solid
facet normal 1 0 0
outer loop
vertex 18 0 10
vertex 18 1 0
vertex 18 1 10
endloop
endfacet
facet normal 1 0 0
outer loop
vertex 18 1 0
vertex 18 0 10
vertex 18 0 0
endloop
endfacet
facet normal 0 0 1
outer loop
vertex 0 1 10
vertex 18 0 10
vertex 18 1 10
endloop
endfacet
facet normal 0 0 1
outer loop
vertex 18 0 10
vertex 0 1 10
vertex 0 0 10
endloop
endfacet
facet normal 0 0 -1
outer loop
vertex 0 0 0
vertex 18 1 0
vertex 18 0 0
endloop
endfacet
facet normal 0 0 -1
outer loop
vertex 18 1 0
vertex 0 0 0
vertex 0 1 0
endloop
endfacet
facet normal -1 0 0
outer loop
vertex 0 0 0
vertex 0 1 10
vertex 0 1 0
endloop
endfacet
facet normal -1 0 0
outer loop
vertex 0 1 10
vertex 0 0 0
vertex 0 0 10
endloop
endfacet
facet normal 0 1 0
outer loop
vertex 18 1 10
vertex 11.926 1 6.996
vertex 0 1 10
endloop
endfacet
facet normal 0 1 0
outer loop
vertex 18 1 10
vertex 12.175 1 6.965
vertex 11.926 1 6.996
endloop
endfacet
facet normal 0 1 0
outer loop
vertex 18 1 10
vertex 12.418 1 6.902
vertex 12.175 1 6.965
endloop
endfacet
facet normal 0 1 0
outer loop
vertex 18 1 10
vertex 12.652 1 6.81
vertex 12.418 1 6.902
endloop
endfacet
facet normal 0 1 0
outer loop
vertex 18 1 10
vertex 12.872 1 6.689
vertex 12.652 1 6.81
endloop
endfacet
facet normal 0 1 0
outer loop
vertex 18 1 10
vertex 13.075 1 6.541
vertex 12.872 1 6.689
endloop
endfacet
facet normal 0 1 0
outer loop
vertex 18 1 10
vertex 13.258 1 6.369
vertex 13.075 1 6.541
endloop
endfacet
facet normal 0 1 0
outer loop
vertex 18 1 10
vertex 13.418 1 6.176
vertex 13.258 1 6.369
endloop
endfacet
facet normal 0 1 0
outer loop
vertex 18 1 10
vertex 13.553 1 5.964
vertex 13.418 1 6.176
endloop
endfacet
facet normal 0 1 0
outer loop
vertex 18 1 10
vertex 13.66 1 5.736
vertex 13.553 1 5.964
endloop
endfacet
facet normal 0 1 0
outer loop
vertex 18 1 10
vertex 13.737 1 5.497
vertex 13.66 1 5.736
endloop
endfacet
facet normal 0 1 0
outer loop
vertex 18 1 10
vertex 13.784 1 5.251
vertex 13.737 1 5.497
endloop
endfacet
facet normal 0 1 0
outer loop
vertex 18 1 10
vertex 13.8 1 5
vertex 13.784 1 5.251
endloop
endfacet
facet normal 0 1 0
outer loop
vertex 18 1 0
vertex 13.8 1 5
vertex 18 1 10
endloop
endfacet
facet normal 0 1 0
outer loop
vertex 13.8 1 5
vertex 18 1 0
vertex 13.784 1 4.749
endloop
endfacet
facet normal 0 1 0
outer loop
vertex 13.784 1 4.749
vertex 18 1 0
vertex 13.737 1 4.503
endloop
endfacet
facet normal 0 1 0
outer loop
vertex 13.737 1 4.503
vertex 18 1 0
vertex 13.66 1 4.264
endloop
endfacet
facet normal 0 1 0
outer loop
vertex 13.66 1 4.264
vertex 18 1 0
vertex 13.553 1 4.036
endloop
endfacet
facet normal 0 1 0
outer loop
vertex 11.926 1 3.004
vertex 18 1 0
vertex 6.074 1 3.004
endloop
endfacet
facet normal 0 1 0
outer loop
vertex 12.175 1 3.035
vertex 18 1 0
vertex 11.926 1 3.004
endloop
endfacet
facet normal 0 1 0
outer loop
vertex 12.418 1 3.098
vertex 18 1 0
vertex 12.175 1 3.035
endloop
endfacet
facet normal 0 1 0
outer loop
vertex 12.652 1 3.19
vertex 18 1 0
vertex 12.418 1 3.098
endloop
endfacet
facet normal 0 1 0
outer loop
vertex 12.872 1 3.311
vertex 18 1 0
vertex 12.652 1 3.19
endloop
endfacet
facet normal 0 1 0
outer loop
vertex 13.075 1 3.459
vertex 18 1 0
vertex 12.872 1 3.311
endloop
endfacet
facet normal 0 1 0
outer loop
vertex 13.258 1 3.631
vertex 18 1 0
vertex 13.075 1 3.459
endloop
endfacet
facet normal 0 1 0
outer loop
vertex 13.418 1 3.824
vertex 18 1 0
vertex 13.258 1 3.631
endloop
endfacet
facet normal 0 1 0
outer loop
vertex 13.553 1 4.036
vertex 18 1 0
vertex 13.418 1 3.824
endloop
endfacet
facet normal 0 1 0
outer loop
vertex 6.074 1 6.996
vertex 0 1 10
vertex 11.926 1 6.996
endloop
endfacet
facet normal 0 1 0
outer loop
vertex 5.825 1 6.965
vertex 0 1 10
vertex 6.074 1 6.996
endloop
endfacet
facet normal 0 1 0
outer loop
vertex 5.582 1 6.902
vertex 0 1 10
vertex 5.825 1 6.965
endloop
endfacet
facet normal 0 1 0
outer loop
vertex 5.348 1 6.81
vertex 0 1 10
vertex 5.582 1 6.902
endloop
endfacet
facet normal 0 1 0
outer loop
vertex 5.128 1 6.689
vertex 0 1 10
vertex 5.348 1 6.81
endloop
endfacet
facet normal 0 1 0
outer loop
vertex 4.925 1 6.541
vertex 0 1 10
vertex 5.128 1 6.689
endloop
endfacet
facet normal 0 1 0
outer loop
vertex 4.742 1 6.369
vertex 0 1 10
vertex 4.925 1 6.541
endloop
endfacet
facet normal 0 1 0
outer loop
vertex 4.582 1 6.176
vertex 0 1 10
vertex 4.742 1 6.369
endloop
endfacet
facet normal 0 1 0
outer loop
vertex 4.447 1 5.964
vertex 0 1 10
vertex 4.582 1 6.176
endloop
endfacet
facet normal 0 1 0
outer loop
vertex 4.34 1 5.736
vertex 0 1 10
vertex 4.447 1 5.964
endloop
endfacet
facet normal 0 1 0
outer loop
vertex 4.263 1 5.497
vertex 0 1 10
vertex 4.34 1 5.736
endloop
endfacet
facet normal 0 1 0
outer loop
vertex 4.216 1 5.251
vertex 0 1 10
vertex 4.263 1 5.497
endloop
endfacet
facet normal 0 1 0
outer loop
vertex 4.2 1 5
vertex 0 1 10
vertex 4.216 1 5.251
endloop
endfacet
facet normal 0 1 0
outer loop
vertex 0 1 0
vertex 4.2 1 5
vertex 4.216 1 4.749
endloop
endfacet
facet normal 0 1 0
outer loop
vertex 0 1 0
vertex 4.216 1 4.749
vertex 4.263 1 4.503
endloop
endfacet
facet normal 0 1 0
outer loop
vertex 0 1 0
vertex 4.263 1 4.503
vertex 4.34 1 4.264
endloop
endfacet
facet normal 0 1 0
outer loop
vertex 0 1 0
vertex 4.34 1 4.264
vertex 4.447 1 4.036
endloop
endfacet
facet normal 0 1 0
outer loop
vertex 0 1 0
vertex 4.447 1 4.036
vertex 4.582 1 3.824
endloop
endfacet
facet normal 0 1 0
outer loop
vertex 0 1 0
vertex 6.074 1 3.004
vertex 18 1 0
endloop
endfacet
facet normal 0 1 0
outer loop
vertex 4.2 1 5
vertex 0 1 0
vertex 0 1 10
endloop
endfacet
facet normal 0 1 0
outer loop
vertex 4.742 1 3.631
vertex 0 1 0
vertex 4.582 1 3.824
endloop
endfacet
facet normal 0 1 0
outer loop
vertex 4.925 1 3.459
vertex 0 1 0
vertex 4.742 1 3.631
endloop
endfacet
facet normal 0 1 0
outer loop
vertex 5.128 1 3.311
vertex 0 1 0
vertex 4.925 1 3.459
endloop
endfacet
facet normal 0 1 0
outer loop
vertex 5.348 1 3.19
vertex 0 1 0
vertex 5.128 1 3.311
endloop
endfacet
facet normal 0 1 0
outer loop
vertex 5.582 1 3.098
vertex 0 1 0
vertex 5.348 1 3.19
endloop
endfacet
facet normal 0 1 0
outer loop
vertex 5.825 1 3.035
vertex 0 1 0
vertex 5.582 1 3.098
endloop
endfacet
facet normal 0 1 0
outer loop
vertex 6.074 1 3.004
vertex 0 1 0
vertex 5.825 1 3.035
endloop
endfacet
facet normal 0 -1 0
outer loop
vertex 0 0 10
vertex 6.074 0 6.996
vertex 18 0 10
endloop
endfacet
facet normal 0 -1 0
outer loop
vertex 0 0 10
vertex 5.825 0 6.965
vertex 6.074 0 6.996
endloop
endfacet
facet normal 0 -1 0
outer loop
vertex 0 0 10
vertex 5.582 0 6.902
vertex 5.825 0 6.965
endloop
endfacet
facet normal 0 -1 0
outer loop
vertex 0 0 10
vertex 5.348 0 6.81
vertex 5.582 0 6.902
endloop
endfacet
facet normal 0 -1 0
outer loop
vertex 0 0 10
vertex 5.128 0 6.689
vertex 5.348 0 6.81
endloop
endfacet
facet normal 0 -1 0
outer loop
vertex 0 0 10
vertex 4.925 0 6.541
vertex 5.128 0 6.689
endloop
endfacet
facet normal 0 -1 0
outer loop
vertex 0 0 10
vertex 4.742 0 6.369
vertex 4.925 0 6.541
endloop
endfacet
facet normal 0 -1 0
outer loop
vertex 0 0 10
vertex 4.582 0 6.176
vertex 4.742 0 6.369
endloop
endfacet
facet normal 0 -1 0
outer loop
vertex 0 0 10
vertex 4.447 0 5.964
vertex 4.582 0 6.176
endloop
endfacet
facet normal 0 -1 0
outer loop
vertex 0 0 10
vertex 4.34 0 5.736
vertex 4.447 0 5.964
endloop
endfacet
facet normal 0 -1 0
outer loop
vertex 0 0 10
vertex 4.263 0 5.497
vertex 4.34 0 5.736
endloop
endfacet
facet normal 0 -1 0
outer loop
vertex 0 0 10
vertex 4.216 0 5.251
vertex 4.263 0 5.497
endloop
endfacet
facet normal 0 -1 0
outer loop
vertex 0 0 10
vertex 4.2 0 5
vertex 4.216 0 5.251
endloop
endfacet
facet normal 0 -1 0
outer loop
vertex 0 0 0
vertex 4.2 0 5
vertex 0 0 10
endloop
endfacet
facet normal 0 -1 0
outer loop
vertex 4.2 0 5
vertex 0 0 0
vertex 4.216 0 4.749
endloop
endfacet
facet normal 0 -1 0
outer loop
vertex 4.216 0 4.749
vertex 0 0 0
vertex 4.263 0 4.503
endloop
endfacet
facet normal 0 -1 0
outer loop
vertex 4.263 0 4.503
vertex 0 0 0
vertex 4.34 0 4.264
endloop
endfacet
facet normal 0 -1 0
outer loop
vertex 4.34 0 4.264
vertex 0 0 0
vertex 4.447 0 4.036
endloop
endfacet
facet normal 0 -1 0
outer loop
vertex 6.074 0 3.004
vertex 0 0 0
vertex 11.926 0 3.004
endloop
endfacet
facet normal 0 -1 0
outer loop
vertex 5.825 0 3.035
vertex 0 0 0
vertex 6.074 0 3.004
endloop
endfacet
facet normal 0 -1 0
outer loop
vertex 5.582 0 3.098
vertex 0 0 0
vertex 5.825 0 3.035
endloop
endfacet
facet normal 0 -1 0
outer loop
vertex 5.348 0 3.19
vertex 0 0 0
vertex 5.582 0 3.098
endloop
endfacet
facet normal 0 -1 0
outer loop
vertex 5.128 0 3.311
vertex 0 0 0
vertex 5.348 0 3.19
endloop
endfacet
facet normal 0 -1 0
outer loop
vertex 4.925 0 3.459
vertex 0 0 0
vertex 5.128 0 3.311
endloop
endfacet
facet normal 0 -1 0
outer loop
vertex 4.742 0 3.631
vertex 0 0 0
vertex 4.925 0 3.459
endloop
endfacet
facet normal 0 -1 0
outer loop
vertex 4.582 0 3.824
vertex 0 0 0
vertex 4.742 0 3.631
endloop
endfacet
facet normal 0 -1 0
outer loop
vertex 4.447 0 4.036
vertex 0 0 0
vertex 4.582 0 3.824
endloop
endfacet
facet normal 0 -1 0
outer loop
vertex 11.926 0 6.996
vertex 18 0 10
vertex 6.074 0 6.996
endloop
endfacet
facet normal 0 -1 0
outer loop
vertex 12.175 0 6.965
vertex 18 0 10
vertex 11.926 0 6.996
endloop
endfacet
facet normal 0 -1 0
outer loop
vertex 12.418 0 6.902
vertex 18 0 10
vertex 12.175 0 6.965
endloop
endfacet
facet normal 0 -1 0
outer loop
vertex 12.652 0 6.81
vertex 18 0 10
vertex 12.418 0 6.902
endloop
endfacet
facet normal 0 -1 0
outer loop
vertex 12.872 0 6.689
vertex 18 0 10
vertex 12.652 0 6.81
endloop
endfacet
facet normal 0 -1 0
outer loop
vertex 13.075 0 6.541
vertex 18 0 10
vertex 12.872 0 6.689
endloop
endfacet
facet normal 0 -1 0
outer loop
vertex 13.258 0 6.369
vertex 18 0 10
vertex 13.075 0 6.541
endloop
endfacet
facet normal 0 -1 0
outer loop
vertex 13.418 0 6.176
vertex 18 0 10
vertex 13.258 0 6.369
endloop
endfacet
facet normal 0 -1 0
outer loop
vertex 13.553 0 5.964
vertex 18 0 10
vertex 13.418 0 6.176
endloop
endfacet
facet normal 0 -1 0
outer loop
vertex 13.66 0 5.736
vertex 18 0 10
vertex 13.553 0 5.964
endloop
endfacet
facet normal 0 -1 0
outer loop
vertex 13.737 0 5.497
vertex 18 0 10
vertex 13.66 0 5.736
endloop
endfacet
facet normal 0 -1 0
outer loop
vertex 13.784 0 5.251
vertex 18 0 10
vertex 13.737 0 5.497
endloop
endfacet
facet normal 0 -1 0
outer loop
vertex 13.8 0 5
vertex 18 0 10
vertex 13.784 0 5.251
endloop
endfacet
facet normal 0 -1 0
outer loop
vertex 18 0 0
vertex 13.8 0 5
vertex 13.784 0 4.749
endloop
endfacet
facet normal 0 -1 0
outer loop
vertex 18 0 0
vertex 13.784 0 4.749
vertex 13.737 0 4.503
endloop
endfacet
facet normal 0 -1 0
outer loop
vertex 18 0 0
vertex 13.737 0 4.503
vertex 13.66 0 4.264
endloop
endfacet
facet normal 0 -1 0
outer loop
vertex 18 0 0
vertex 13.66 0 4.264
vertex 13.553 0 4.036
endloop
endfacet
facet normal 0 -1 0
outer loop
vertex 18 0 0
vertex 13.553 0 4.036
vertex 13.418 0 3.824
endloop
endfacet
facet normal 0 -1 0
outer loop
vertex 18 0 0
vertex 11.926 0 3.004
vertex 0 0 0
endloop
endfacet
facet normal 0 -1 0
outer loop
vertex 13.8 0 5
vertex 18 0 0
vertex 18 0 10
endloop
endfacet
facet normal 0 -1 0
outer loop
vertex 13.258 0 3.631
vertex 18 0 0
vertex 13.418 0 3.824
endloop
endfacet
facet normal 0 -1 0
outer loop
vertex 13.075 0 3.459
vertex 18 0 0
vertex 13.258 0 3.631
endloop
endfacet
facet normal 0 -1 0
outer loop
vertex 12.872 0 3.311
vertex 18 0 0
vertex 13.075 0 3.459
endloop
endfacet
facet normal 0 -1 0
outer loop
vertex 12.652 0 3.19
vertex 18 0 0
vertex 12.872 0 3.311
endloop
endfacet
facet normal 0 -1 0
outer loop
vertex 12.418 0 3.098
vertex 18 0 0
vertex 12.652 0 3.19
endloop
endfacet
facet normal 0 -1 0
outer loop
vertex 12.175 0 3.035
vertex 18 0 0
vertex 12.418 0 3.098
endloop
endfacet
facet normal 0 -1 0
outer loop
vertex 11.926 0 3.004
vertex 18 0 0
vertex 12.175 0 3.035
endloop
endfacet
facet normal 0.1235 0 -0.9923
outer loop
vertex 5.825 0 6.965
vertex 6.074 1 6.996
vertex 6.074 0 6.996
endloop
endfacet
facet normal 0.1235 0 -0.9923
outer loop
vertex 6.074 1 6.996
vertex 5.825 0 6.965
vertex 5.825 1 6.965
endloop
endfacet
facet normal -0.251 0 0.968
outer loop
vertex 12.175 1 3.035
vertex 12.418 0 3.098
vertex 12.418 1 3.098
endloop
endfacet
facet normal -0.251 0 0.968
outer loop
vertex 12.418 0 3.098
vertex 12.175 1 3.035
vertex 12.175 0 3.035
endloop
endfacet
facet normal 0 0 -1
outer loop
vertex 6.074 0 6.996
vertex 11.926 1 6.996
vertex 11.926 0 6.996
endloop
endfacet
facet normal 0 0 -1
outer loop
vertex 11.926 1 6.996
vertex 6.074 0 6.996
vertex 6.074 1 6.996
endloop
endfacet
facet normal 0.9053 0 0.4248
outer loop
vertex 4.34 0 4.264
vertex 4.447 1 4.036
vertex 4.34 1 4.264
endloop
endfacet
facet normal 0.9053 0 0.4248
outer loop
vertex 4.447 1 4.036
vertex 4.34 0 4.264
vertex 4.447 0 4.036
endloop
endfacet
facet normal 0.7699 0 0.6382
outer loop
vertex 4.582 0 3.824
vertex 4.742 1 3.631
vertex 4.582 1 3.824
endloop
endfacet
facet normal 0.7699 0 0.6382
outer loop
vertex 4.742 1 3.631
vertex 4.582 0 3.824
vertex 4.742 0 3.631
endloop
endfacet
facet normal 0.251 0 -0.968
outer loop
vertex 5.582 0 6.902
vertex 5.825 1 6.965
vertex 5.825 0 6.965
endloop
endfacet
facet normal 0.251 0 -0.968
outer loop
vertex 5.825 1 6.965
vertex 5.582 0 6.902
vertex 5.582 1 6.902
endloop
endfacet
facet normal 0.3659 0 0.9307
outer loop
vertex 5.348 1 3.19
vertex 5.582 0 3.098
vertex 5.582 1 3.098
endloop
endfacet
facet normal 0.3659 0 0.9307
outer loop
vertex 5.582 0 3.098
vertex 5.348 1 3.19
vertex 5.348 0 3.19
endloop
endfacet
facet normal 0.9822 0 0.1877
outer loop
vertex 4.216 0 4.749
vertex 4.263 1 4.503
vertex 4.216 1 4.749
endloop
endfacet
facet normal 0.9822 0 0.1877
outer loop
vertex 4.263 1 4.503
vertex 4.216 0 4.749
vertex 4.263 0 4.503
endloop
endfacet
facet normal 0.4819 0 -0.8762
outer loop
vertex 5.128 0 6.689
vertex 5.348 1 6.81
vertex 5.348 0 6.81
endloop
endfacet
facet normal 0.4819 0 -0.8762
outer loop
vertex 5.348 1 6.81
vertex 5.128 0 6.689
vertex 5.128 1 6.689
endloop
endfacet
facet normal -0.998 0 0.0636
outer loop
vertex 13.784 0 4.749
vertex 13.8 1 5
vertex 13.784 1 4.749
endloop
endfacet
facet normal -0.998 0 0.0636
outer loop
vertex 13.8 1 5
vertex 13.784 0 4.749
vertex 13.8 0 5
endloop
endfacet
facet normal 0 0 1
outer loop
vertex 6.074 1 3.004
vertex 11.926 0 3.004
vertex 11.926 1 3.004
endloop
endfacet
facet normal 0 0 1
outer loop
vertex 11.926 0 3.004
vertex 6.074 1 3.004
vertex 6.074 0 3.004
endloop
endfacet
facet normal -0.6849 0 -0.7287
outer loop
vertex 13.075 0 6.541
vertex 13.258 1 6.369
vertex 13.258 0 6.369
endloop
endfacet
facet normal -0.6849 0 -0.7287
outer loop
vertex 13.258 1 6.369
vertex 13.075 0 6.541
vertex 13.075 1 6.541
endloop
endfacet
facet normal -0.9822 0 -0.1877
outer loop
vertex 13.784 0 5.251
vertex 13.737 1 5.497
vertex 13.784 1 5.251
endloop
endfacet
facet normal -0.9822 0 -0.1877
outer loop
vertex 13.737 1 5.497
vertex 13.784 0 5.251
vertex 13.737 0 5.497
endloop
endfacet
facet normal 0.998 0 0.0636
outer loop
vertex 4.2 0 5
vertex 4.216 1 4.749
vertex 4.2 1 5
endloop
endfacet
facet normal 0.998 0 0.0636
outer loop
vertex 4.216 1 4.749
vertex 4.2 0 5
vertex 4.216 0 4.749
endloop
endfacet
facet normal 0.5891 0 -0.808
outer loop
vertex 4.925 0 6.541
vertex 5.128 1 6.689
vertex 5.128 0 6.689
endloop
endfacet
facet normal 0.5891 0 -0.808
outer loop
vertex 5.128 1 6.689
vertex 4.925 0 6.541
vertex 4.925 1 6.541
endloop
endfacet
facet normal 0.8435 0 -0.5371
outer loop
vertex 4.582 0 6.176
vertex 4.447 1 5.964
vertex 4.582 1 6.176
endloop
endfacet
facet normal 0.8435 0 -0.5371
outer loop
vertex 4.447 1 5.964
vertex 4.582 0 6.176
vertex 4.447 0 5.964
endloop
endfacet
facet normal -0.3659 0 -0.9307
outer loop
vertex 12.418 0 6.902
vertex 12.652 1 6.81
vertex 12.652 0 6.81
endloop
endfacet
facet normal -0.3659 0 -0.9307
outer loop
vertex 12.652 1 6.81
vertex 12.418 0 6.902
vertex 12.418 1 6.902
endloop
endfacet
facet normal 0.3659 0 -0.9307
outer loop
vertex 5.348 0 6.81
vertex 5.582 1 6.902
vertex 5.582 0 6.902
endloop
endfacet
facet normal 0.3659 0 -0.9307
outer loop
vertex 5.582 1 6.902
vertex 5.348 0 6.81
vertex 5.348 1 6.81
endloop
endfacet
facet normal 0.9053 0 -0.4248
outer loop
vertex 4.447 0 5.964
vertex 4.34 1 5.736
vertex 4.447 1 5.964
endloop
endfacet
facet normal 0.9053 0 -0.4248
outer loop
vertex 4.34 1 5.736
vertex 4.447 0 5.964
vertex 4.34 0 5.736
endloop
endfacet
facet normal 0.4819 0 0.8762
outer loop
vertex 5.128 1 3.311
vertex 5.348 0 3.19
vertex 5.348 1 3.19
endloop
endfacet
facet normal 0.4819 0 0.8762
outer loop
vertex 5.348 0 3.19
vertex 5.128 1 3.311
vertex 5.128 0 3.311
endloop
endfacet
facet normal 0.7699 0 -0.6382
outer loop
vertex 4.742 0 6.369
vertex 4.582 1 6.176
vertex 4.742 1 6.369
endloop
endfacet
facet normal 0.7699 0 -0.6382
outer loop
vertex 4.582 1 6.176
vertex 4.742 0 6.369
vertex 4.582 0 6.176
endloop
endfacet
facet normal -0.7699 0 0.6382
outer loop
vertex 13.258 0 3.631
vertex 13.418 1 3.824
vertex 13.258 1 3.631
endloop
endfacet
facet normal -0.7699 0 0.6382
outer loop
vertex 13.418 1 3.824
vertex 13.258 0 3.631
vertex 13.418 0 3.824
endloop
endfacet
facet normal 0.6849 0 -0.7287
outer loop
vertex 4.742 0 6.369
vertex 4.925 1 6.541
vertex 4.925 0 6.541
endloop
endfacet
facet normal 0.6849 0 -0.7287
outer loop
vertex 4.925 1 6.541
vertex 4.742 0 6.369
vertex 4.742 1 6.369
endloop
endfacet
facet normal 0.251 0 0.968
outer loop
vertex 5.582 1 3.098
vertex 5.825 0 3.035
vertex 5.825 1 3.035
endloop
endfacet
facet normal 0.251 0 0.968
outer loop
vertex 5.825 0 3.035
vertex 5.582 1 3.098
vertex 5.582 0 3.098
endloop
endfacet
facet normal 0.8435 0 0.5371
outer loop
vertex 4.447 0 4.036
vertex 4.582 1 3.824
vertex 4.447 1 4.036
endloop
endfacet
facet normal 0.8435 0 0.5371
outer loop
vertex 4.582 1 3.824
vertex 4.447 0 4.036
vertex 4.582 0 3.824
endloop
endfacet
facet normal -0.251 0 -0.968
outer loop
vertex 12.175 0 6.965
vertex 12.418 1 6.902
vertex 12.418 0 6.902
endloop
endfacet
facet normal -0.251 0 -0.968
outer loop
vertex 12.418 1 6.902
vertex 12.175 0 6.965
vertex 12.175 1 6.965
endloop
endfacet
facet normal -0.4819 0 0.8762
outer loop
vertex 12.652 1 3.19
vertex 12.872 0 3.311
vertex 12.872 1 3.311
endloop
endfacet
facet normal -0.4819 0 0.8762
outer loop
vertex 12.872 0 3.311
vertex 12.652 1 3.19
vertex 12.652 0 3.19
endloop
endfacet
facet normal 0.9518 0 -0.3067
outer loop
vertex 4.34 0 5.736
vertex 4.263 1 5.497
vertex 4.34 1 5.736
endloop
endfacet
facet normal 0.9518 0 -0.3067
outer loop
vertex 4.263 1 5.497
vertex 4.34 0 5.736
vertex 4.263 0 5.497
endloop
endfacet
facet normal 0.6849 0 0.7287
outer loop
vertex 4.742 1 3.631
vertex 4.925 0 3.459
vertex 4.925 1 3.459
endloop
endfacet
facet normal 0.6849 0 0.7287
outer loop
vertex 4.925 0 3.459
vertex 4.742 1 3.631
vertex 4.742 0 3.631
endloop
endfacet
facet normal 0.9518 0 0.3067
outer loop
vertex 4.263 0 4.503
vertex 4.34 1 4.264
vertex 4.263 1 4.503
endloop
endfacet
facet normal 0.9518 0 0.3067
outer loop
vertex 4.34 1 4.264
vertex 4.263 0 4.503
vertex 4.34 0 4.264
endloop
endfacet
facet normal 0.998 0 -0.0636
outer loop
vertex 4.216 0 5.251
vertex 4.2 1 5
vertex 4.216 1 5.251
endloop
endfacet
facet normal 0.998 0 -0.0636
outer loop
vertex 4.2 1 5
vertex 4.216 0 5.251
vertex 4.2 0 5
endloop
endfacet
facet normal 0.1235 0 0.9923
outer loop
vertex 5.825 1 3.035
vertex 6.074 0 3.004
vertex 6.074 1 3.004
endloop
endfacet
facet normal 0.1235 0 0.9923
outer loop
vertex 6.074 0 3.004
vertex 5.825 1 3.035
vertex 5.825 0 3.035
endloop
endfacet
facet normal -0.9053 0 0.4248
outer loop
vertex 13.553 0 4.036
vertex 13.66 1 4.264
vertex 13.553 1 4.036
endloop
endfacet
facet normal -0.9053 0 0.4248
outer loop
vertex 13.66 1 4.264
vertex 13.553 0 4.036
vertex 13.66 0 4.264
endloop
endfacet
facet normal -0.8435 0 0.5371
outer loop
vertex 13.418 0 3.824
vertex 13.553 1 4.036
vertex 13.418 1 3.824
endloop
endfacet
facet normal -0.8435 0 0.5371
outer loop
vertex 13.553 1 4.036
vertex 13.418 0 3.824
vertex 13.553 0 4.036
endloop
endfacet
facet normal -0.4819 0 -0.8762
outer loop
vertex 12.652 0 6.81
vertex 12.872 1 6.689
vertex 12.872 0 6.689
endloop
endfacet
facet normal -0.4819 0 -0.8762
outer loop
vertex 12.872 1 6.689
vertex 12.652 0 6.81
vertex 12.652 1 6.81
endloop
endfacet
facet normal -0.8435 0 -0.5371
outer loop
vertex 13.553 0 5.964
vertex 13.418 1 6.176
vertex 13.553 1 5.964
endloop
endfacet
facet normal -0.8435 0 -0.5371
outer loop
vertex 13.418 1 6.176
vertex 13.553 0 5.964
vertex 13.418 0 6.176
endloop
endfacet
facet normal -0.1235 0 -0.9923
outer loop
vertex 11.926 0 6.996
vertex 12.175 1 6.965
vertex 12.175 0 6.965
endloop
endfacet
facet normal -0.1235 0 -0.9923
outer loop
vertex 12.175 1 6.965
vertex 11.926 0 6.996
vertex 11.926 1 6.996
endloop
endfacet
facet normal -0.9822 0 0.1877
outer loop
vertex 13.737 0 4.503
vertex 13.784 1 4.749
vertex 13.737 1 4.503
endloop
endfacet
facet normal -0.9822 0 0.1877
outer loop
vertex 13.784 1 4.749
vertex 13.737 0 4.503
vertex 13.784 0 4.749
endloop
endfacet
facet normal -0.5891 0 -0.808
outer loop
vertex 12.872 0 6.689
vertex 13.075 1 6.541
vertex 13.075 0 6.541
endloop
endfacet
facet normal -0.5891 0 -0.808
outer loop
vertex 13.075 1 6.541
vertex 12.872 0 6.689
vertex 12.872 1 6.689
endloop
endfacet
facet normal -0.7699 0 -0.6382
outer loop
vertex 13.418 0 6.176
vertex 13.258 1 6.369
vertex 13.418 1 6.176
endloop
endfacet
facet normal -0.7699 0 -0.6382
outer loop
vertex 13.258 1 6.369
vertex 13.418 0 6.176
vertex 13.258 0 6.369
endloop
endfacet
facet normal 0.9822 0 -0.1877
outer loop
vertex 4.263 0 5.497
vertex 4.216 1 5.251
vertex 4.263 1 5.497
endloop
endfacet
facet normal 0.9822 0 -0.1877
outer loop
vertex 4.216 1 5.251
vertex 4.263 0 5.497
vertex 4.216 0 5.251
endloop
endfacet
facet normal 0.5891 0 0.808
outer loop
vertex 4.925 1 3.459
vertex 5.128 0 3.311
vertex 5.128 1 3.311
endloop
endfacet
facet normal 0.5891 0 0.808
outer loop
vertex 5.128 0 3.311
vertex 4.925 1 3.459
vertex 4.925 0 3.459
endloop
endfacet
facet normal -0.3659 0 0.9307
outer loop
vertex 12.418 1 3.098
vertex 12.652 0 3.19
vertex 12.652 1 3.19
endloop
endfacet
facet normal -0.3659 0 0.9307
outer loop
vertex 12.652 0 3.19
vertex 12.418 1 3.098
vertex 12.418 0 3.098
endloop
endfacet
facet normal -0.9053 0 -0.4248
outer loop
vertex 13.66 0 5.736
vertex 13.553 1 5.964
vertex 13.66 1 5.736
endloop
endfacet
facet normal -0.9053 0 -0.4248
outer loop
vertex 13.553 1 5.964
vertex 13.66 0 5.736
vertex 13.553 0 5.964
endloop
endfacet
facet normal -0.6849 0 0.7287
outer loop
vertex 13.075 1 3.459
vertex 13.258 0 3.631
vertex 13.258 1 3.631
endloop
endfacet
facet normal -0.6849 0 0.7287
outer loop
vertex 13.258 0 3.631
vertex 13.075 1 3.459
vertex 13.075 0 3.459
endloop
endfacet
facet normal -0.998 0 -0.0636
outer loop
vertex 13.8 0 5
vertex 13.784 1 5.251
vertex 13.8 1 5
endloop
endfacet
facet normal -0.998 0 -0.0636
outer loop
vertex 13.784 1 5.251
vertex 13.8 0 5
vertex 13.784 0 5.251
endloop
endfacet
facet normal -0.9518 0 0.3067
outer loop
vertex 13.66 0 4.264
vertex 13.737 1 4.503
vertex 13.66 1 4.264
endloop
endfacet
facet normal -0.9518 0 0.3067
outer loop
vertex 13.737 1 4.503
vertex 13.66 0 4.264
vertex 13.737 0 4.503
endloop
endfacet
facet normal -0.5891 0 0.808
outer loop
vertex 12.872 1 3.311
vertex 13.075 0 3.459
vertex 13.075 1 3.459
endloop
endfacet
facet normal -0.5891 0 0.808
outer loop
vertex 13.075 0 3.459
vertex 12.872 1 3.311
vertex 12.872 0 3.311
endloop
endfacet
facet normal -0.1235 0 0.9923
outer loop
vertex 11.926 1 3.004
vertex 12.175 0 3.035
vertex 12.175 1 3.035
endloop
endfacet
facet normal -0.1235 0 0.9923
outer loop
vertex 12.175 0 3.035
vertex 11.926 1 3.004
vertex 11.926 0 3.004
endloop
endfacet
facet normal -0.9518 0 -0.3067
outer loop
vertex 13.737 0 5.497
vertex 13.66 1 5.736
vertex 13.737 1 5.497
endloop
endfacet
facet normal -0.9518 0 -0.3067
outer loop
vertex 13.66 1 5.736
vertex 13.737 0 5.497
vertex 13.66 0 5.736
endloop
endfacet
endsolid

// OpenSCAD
$fn=50;


breite = 18;
tiefe = 41;
hoehe = 10;


wanddicke = 1;
edge_radius = wanddicke;

difference() {
    cube([breite, edge_radius, hoehe]);
    hull() {
        translate([4.2+4/2, 0, 3+4/2])
        rotate([90, 0, 0]) cylinder(h=wanddicke*2, d=4, center=true);
        translate([18-4.2-4/2, 0, 3+4/2])
        rotate([90, 0, 0]) cylinder(h=wanddicke*2, d=4, center=true);
    }
}
